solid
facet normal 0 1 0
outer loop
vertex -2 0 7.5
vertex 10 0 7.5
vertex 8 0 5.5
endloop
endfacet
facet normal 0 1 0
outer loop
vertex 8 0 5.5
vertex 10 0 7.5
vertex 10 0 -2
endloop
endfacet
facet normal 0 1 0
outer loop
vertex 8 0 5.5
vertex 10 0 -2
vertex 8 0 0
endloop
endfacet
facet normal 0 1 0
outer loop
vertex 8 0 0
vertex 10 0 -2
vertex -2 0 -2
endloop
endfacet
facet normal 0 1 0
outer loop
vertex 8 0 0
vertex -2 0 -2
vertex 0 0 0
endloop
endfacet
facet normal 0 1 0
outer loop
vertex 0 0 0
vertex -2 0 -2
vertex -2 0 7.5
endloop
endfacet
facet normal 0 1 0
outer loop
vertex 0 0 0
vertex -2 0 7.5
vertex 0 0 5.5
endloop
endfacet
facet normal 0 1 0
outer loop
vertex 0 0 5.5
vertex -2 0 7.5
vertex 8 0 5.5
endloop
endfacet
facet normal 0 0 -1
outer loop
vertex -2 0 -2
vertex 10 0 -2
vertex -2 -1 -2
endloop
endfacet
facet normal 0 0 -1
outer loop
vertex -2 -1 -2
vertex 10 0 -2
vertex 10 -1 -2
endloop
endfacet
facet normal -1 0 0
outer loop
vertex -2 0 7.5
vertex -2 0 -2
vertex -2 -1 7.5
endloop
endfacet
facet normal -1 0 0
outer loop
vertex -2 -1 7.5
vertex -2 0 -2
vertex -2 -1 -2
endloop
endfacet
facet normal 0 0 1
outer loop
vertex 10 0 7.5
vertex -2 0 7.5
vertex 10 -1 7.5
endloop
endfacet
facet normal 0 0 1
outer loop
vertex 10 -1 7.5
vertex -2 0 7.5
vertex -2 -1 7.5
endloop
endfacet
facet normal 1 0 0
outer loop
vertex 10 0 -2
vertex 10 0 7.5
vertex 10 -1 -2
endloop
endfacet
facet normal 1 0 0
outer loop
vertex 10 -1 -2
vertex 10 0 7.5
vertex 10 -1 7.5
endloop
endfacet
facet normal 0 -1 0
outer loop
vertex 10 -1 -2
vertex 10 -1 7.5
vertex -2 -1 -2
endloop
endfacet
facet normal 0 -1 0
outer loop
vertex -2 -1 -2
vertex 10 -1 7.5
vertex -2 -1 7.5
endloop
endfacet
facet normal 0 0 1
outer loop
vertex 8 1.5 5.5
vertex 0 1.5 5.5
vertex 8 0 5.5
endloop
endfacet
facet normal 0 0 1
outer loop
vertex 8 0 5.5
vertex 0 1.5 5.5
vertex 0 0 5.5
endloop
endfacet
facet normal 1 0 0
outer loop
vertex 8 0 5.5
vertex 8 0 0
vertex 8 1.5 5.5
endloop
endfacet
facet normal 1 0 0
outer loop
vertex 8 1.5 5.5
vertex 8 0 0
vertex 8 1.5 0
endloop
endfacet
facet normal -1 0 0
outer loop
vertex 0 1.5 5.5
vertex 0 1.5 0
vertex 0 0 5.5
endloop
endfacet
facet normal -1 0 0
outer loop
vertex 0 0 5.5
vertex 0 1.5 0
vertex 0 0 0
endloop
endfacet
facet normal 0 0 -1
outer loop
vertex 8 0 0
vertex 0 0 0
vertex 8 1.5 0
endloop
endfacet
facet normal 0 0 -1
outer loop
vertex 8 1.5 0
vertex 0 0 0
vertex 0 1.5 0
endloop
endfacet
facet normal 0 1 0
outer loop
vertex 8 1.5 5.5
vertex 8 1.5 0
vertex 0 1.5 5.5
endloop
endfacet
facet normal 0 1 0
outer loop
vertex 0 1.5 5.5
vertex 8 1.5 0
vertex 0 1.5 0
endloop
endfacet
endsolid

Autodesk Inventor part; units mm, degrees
ref_plane "YZ Plane" through (0, 0, 0) normal (1, 0, 0) x (0, 1, 0)
ref_plane "XZ Plane" through (0, 0, 0) normal (0, 1, 0) x (-1, 0, 0)
ref_plane "XY Plane" through (0, 0, 0) normal (0, 0, 1) x (1, 0, 0)
sketch "Sketch1" plane through (0, 0, 0) normal (0, 1, 0) x (-1, 0, 0)
  line L0 (0, 0) -> (-8, 0)
  line L1 (-8, 0) -> (-8, 6)
  line L2 (-8, 6) -> (0, 6)
  line L3 (0, 6) -> (0, 0)
  dimension "d0" = 8
  dimension "d1" = 6
extrude "Extrusion1" add sketch "Sketch1" along normal blind 1.5
sketch "Sketch2" plane through (0, 0, 0) normal (0, -1, 0) x (1, 0, 0)
  line L0 (8, 0) -> (0, 0) projected
  line L1 (8, 0) -> (0, 0)
  line L2 (8, 6) -> (8, 0) projected
  line L3 (0, 6) -> (8, 6)
  line L4 (8, 6) -> (8, 0)
  line L5 (0, 5.5) -> (8, 5.5)
  line L6 (0, 5.5) -> (0, 6)
  line L7 (0, 6) -> (8, 6) projected
  line L8 (8, 6) -> (8, 5.5)
  line L9 (8, 6) -> (0, 6)
  dimension "d4" = 5.5
extrude "Extrusion2" cut sketch "Sketch2" against normal blind 10
sketch "Sketch3" plane through (0, 0, 0) normal (0, -1, 0) x (1, 0, 0)
  point P0 (0, 0)
sketch "Sketch4" plane through (0, 0, 0) normal (0, -1, 0) x (1, 0, 0)
  line L0 (8, 0) -> (0, 0) projected
  line L1 (0, -2) -> (10, -2)
  line L2 (10, -2) -> (10, 7.5)
  line L3 (10, 7.5) -> (-2, 7.5)
  line L4 (-2, 7.5) -> (-2, -2)
  line L5 (-2, -2) -> (0, -2)
  dimension "d7" = 2
  dimension "d8" = 10
  dimension "d9" = 9.5
  dimension "d10" = 12
extrude "Extrusion3" add sketch "Sketch4" along normal blind 1
properties part number "Button"
